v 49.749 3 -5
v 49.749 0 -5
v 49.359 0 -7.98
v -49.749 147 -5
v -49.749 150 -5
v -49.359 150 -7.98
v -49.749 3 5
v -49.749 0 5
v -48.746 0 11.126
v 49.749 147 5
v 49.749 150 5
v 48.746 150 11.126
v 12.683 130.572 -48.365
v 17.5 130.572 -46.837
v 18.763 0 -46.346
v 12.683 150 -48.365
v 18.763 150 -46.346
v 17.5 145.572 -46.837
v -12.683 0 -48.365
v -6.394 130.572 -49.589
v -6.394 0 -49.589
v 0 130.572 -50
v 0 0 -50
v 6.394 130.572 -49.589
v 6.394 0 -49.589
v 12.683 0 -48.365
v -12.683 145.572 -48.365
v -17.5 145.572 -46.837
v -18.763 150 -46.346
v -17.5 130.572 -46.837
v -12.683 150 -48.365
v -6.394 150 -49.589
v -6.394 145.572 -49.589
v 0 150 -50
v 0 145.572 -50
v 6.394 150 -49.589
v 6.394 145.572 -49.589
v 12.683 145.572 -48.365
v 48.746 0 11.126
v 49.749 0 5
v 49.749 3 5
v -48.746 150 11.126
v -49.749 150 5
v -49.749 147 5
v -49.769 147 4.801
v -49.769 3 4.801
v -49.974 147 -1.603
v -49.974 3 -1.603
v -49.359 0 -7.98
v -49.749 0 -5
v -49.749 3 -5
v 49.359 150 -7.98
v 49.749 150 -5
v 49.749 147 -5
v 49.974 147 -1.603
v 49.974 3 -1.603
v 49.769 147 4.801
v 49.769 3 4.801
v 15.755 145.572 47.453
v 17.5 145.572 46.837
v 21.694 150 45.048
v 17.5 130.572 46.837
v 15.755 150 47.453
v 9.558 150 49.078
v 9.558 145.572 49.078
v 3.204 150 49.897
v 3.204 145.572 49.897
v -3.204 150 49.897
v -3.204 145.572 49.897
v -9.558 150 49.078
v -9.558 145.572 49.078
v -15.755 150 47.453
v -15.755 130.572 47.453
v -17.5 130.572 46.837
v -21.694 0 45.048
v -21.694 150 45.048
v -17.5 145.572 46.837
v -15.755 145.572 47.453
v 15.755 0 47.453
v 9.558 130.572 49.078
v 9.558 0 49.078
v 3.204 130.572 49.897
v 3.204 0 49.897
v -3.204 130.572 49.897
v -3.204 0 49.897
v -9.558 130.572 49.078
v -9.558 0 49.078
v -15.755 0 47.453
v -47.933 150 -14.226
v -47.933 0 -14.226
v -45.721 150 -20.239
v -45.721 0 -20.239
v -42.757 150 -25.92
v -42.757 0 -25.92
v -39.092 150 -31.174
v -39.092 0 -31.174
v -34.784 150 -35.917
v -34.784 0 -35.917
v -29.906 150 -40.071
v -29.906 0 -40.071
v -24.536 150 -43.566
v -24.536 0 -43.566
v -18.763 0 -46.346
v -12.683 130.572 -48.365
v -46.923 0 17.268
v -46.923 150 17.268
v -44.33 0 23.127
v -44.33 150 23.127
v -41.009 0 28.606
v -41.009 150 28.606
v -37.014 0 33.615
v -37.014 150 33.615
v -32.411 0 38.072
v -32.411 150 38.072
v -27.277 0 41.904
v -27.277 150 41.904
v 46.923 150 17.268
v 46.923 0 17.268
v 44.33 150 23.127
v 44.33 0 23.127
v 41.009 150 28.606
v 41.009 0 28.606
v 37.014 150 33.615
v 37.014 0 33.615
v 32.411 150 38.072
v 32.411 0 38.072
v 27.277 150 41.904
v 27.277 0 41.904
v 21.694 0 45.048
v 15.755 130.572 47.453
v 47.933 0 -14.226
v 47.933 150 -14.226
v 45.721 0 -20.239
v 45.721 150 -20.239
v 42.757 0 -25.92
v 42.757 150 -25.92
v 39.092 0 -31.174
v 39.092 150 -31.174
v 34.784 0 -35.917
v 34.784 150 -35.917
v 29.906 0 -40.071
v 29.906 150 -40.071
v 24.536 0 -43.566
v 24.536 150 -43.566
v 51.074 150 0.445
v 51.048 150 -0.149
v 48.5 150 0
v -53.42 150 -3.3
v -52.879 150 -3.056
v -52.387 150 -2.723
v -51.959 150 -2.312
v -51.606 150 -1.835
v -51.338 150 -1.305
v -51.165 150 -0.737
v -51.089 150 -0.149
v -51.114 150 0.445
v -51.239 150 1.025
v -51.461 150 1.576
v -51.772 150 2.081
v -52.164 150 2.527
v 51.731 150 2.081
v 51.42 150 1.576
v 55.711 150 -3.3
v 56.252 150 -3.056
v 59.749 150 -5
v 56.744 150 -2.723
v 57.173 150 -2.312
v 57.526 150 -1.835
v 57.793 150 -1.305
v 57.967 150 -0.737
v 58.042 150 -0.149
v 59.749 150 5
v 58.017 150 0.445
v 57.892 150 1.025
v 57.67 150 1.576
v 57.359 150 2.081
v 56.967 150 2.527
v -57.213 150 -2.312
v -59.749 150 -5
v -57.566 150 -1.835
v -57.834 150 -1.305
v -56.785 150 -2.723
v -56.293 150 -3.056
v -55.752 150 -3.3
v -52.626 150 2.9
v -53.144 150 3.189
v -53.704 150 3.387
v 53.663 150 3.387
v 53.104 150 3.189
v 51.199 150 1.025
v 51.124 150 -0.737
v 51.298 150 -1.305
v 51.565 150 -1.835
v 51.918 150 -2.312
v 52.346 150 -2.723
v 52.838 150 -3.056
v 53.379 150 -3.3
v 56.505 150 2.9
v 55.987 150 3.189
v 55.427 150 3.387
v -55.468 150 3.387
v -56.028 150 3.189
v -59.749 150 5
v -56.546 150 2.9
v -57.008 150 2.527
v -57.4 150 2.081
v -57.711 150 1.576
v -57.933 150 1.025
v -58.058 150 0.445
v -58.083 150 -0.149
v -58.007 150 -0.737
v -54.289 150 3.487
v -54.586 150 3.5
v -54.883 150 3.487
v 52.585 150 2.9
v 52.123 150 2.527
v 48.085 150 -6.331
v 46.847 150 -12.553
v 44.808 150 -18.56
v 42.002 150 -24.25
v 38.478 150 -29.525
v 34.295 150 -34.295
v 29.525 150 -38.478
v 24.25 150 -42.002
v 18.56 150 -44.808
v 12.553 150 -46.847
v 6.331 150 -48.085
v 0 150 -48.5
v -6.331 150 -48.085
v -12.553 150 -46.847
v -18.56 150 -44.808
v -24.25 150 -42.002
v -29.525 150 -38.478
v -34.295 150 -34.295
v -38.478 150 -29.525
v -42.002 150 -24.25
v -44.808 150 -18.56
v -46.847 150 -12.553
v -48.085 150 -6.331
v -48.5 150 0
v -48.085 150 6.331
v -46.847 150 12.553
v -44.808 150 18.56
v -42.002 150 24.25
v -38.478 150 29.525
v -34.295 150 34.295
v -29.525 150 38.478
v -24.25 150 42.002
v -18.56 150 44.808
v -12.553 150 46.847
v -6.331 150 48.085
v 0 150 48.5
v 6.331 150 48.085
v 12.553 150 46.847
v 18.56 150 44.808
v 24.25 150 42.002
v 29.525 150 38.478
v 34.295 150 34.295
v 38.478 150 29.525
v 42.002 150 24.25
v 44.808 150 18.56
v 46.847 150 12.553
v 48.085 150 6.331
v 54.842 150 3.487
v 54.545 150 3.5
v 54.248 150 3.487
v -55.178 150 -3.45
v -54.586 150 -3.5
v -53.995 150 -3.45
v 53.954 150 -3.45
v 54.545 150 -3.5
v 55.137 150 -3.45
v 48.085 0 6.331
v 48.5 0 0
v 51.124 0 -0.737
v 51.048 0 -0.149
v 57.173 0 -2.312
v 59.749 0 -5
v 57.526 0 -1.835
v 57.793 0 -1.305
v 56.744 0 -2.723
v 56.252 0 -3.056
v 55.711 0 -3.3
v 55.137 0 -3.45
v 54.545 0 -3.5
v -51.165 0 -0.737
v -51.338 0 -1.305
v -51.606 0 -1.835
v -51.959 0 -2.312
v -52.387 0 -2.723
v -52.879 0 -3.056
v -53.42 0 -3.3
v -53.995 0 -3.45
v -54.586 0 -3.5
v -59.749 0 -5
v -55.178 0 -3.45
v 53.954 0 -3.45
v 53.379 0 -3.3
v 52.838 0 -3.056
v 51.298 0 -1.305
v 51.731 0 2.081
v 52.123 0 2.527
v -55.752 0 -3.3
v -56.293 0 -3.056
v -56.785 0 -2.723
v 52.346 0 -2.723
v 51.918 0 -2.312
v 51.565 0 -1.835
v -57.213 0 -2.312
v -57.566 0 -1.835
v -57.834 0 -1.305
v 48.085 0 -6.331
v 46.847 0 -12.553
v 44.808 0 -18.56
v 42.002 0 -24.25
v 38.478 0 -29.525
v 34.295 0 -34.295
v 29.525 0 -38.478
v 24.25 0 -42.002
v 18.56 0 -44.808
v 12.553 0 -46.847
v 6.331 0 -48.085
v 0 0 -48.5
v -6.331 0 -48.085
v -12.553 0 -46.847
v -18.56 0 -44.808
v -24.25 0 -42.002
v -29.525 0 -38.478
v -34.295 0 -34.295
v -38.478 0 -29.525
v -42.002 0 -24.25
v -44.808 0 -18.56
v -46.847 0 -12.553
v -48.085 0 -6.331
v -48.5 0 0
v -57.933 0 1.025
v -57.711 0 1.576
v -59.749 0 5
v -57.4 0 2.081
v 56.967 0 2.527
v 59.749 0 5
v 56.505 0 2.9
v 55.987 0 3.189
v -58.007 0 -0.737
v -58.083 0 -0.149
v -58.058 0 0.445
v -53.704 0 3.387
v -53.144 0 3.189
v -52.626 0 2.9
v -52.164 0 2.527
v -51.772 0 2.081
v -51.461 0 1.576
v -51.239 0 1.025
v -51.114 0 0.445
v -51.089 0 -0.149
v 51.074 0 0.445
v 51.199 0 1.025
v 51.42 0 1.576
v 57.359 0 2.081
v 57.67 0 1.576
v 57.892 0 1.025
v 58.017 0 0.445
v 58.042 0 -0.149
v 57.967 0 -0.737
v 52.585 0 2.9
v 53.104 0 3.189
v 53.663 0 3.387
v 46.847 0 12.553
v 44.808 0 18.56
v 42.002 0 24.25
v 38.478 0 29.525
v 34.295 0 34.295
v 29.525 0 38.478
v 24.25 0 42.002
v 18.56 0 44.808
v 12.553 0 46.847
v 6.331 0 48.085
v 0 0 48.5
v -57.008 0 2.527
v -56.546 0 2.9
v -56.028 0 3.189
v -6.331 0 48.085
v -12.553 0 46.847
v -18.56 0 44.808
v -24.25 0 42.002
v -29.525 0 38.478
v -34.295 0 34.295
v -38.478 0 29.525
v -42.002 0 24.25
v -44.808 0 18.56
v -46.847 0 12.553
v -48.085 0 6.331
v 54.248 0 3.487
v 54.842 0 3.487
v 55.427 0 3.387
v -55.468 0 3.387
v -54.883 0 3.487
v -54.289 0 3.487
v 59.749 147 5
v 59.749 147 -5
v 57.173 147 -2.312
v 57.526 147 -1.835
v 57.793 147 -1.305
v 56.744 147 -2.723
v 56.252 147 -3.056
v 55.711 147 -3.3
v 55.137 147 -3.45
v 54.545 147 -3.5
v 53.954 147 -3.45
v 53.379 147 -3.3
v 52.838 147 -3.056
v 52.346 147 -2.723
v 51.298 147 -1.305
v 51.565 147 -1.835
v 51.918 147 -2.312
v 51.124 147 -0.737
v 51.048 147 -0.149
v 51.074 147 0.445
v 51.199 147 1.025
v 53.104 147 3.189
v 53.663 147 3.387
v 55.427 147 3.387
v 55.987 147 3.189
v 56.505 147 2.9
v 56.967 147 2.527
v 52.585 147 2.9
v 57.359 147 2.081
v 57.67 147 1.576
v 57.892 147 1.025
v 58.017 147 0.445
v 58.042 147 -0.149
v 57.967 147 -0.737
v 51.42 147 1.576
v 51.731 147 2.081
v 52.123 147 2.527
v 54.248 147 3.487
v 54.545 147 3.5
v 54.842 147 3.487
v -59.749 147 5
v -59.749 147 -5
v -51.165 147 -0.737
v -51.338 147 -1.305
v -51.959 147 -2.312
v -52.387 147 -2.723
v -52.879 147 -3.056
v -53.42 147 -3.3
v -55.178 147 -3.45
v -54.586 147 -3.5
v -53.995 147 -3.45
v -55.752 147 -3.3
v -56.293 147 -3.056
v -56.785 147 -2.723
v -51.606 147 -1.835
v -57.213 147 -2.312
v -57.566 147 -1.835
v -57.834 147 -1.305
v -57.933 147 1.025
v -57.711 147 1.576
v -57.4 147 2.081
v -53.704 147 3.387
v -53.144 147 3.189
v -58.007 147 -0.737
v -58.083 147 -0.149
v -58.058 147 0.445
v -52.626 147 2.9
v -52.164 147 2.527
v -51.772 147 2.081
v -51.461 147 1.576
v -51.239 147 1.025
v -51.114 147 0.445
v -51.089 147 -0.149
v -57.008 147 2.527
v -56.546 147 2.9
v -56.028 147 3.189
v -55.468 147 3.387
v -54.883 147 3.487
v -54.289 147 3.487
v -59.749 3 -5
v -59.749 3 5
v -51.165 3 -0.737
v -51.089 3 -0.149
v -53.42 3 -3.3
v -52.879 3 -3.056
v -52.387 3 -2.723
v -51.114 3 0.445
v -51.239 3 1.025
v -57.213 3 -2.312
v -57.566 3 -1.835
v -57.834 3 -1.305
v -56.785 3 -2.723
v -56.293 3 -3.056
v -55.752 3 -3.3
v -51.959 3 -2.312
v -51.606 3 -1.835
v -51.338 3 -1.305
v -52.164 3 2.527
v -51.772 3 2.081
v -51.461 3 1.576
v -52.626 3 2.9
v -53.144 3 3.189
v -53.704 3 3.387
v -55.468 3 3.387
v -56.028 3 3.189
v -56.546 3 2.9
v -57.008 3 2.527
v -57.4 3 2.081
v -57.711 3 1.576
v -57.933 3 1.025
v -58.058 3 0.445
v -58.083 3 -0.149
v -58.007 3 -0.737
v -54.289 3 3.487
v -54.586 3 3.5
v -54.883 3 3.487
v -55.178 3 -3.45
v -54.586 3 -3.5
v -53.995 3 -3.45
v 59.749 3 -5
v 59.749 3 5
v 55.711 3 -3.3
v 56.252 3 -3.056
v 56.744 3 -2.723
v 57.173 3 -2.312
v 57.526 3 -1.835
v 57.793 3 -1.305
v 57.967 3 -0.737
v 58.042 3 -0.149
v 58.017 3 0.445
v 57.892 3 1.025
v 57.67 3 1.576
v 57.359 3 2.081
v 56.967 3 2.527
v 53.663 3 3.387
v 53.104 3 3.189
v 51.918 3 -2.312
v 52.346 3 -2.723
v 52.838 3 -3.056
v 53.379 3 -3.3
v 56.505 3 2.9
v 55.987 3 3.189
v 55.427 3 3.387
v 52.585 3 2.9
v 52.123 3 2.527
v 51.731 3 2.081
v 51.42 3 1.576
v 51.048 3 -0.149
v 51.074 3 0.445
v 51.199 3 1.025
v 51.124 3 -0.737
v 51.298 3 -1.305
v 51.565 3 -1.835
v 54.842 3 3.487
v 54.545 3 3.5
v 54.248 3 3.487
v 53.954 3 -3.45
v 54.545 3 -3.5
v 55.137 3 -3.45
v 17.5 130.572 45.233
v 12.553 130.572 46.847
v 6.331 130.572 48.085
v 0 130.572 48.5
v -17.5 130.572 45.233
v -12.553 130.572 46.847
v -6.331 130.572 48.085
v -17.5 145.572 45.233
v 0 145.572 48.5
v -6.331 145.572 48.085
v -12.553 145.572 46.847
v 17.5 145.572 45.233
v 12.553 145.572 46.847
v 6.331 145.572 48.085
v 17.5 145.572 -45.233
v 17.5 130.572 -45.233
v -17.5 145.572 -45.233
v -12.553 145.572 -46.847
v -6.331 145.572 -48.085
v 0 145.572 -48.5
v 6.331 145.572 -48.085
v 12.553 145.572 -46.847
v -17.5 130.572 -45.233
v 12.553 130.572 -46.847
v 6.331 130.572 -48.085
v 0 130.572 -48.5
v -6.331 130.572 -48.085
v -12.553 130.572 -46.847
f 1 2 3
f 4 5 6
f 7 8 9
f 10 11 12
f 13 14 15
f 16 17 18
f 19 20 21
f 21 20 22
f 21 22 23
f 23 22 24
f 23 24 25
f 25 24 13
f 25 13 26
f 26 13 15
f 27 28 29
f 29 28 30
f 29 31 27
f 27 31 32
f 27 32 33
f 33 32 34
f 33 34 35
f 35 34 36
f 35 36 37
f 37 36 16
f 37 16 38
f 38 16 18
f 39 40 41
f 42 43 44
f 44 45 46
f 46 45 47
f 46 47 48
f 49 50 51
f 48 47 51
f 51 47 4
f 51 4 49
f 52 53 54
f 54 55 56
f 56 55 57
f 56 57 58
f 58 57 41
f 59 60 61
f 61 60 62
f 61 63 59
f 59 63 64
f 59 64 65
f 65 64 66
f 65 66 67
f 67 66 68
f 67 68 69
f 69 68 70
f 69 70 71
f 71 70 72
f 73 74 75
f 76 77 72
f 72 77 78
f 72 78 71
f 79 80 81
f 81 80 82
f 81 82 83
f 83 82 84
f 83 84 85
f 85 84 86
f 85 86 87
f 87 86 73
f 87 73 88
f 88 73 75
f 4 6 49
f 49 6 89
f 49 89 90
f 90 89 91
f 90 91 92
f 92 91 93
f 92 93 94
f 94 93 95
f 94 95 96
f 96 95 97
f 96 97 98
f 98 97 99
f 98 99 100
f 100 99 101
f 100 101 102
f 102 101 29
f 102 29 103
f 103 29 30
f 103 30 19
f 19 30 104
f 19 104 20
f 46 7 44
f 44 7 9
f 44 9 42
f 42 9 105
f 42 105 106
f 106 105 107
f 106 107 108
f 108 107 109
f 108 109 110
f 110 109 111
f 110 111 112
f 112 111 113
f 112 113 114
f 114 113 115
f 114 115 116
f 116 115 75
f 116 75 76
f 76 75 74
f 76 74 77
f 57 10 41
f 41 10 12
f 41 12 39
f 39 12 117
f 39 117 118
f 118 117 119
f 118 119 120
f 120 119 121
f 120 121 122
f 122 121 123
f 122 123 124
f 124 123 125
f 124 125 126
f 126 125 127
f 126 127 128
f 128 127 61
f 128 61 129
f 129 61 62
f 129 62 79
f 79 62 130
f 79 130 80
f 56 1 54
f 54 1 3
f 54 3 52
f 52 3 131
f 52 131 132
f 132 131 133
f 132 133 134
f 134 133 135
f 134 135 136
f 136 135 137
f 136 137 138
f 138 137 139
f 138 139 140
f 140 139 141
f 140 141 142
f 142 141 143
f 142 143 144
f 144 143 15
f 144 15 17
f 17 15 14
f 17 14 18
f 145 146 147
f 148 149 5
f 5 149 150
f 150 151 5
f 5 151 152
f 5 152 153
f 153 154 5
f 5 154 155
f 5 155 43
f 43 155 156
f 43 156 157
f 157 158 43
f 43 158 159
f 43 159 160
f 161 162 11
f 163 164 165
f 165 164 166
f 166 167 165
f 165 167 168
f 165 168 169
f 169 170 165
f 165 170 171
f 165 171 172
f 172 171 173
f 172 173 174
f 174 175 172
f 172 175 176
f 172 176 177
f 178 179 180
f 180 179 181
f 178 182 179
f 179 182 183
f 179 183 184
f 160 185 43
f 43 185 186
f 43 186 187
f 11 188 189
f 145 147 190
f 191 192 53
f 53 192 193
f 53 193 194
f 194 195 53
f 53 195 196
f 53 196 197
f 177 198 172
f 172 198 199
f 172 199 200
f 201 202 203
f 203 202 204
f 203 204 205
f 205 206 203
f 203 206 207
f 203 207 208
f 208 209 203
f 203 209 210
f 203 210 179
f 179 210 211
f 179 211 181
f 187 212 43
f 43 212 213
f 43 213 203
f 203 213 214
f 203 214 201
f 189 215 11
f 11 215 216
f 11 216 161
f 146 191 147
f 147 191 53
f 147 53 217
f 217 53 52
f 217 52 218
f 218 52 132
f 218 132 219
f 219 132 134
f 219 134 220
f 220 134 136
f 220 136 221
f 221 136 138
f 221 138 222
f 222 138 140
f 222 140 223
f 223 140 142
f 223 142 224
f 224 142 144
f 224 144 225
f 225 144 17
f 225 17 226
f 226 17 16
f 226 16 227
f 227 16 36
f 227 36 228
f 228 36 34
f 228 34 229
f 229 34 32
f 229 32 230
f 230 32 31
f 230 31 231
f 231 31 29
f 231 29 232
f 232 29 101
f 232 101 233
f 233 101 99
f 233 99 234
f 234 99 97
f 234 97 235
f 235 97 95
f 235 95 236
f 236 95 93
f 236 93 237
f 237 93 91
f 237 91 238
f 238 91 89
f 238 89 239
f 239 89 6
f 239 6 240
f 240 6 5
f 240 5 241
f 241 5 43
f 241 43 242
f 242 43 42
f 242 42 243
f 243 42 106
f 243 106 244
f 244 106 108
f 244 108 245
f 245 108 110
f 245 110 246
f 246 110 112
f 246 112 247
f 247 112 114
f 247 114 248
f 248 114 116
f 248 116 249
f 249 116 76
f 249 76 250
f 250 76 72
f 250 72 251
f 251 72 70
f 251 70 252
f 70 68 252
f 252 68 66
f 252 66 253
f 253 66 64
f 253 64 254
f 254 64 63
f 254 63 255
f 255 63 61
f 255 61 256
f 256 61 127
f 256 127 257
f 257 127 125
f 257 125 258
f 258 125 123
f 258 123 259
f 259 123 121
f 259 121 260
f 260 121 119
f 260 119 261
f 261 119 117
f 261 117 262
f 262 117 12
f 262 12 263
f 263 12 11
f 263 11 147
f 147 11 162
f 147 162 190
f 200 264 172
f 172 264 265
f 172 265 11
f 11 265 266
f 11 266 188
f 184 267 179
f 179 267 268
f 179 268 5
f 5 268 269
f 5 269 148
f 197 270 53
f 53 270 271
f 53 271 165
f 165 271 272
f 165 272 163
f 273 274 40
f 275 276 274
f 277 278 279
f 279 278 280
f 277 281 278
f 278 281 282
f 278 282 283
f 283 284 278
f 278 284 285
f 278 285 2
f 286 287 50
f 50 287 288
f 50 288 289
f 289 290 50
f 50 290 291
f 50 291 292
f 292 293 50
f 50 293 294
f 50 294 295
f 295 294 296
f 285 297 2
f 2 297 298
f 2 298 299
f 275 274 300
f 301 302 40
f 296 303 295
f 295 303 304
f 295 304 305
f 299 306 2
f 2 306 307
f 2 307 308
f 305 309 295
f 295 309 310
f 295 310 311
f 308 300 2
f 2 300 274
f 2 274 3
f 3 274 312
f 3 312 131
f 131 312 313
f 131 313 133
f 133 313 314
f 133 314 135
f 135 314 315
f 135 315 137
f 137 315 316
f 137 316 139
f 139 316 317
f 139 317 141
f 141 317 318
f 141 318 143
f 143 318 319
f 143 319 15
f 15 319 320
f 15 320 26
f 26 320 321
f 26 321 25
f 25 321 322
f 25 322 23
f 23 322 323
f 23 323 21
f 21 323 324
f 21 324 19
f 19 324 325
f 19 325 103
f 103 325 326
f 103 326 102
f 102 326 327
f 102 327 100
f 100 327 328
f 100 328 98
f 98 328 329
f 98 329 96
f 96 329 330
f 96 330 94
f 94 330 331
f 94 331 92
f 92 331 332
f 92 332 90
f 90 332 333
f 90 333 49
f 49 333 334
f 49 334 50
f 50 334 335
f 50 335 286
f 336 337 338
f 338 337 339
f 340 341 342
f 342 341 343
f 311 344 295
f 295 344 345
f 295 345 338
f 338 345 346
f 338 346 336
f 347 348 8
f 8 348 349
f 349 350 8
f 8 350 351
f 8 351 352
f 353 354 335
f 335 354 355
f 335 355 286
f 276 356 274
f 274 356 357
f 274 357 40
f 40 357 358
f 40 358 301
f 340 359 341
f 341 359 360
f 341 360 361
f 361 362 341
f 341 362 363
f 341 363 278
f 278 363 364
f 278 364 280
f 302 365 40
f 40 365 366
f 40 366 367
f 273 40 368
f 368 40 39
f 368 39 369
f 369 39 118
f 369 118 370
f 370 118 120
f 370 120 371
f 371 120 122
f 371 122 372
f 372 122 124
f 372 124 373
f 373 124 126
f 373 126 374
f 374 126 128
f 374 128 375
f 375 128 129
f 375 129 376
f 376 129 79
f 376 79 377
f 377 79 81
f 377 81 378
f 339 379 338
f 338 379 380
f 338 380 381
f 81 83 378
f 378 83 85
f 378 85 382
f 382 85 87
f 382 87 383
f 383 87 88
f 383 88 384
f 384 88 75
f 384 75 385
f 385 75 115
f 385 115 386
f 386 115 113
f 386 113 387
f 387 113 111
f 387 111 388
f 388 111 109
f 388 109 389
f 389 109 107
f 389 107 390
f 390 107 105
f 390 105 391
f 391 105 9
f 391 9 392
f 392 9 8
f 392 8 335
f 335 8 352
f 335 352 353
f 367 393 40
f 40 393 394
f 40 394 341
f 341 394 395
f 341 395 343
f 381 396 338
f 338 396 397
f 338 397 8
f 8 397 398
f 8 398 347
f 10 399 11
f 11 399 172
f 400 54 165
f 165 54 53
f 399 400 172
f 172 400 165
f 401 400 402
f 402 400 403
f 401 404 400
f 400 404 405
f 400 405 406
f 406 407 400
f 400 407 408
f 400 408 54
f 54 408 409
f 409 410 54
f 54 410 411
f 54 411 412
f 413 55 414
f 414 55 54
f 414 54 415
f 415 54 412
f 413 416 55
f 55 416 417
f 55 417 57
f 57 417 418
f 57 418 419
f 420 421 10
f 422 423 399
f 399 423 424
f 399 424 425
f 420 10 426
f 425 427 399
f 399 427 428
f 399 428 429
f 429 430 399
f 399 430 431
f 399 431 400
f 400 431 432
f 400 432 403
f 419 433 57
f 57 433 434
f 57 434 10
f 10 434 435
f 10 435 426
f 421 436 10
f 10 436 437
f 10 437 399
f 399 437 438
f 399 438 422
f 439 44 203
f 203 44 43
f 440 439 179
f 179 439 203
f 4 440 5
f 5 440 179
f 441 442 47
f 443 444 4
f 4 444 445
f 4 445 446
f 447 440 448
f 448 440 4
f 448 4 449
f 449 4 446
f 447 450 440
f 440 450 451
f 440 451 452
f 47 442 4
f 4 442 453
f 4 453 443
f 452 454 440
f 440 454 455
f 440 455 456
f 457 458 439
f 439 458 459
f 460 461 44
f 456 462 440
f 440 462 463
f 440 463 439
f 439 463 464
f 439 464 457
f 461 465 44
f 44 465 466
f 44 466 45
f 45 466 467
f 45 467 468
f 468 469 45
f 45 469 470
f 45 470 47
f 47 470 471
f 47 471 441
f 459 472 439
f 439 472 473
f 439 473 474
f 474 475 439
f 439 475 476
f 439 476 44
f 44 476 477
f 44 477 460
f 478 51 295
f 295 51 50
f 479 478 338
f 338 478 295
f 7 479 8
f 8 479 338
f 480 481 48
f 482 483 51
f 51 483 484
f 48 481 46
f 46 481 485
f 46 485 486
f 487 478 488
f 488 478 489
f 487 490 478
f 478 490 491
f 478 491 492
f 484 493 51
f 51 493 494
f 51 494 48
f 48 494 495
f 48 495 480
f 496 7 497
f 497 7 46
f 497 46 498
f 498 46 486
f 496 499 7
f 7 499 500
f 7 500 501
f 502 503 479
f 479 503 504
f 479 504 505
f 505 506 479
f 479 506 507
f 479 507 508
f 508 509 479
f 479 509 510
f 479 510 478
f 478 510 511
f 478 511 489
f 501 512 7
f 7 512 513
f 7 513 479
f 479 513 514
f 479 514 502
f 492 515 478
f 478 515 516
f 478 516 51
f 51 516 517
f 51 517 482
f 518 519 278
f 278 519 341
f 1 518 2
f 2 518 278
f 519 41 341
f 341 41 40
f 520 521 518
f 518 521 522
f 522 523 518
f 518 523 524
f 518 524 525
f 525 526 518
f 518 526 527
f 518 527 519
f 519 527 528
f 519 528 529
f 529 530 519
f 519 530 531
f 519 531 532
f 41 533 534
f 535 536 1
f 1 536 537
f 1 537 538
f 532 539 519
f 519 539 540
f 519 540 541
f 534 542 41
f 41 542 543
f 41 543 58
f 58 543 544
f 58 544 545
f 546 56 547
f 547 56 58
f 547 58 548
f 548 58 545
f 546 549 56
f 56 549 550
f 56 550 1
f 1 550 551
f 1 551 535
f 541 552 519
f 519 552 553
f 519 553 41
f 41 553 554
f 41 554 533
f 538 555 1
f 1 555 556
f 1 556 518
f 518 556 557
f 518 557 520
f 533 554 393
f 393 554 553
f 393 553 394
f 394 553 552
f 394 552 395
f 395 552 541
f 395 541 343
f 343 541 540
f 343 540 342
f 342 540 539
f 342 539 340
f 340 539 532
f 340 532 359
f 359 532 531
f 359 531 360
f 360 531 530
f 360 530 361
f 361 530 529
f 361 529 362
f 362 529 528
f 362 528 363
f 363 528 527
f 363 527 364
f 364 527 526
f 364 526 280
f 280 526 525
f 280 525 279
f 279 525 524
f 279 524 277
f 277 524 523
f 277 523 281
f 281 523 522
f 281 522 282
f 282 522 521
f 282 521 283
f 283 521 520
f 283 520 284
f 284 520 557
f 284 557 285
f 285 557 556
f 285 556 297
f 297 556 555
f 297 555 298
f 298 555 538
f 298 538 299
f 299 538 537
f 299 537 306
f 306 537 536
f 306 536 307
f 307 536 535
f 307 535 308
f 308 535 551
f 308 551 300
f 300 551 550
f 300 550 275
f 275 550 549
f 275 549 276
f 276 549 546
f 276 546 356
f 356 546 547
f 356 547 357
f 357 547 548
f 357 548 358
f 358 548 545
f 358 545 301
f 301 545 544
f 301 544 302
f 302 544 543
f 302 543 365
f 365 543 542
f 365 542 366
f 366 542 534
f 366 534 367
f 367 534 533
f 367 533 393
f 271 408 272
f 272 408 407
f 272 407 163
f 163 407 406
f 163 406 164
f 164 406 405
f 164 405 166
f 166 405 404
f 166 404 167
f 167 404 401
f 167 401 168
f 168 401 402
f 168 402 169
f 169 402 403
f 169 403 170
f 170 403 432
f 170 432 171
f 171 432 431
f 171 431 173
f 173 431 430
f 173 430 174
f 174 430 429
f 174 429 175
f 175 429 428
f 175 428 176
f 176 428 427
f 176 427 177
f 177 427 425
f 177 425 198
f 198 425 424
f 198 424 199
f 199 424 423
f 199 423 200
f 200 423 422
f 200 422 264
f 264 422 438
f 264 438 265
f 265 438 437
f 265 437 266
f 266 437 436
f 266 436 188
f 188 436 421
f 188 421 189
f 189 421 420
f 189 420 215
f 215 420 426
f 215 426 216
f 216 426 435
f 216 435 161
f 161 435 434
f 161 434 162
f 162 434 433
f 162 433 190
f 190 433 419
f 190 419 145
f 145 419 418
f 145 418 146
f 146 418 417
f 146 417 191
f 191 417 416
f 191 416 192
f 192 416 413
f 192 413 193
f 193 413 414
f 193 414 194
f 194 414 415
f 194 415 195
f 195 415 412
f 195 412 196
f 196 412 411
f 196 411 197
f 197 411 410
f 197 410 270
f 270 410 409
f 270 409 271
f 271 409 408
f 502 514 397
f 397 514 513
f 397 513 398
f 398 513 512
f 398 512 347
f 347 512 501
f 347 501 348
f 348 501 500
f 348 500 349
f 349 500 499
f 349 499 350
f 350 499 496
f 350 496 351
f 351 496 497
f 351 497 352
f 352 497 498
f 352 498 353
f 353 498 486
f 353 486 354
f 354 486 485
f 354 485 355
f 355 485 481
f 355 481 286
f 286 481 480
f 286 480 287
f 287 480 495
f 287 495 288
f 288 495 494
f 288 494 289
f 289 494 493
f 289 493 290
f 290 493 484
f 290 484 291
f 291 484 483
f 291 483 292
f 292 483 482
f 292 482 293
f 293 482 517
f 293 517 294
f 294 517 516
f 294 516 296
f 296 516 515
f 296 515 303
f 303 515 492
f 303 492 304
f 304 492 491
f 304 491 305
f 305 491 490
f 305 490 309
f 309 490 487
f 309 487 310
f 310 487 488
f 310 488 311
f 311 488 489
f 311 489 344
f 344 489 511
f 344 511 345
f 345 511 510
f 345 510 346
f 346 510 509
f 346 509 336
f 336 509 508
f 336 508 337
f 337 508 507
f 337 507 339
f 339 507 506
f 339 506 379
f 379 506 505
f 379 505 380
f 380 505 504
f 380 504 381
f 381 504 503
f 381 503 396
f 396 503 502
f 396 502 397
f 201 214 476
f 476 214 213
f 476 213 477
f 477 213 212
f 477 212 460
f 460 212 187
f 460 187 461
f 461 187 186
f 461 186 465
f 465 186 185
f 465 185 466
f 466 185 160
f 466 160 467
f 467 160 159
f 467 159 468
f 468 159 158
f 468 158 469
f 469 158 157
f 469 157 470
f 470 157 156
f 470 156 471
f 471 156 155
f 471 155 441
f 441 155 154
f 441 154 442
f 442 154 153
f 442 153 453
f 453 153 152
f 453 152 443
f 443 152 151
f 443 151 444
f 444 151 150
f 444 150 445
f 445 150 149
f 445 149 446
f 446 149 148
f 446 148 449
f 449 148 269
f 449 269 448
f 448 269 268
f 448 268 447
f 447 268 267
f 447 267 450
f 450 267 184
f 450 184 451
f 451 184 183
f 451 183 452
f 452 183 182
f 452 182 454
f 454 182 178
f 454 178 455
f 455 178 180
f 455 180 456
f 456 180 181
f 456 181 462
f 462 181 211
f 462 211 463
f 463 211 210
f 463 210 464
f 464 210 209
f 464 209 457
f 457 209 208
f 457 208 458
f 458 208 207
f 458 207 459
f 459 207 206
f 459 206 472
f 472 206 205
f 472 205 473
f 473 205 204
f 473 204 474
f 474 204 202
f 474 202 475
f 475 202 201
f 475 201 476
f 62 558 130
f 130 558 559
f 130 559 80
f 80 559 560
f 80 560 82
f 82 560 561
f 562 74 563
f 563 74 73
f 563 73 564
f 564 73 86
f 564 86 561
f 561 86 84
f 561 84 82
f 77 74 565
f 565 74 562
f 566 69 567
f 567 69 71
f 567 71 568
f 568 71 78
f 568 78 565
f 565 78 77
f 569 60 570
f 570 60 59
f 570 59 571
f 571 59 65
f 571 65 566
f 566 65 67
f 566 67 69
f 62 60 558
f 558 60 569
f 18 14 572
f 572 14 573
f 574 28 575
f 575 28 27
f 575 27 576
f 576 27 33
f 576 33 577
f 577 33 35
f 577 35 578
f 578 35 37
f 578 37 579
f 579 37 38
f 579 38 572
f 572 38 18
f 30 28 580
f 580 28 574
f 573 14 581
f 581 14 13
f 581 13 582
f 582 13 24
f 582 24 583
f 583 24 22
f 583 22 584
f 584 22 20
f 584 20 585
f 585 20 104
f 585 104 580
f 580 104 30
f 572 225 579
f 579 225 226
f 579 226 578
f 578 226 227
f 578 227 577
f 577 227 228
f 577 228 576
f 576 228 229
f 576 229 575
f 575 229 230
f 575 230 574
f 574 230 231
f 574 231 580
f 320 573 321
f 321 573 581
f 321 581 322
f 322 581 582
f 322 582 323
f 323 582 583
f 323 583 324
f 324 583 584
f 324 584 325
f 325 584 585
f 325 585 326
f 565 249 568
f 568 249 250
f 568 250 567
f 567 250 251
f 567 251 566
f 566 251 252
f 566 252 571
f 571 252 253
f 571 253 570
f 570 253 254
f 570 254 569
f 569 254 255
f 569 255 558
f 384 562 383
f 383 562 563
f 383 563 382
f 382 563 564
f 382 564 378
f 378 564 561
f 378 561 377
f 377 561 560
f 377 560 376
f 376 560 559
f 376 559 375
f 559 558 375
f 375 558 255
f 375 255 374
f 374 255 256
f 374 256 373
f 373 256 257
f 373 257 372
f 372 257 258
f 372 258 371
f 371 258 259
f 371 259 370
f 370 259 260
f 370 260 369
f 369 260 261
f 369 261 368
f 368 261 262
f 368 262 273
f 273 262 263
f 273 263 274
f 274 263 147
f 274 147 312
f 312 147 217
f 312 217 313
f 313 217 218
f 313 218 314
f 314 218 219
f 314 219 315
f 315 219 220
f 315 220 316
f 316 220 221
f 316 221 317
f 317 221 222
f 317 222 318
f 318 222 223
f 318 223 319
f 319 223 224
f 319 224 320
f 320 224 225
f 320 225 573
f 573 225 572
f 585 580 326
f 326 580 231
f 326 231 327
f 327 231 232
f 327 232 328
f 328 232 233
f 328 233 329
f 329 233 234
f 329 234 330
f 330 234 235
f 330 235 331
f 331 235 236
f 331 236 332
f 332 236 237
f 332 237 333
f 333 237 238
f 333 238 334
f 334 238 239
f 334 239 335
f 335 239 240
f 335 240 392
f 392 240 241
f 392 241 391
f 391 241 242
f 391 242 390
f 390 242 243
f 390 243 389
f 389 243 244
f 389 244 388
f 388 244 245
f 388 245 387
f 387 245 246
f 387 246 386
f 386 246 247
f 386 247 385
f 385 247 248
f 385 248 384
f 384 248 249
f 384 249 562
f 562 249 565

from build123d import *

# Parameters (mm, degrees)
SKETCH2_R               = 50
BOSS_EXTRUDE1_DEPTH     = 150
SKETCH3_R               = 48
CUT_EXTRUDE1_DEPTH      = 150
SKETCH4_W               = 10
SKETCH4_H               = 10
BOSS_EXTRUDE2_DEPTH     = 3
SKETCH5_W               = 10
SKETCH5_H               = 10
BOSS_EXTRUDE3_DEPTH     = 3
SKETCH7_W               = 10
SKETCH7_H               = 10
BOSS_EXTRUDE5_DEPTH     = 3
SKETCH8_W               = 10
SKETCH8_H               = 10
BOSS_EXTRUDE6_DEPTH     = 3
SKETCH9_R               = 3.5
CUT_EXTRUDE2_DEPTH      = 200
SKETCH10_R              = 3.5
CUT_EXTRUDE3_DEPTH      = 200
CUT_EXTRUDE4_DEPTH      = 150
CUT_EXTRUDE4_DEPTH_BACK = 150
SKETCH11_W              = 35
SKETCH11_H              = 15
SKETCH12_R              = 48.5
CUT_EXTRUDE5_DEPTH      = 150


with BuildPart() as part:
    # Sketch2 → Boss-Extrude1 (new body)
    with BuildSketch(Plane(origin=(0, 0, 0), x_dir=(1, 0, 0), z_dir=(0, 1, 0))):
        with Locations(Location((0, 0, 0), (0, 0, 270))):
            Circle(SKETCH2_R)
    extrude(amount=BOSS_EXTRUDE1_DEPTH)

    # Sketch3 → Cut-Extrude1 (cut)
    with BuildSketch(Plane(origin=(0, 150, 0), x_dir=(1, 0, 0), z_dir=(0, 1, 0))):
        with Locations(Location((0, 0, 0), (0, 0, 270))):
            Circle(SKETCH3_R)
    extrude(amount=-CUT_EXTRUDE1_DEPTH, mode=Mode.SUBTRACT)

    # Sketch4 → Boss-Extrude2 (add)
    with BuildSketch(Plane(origin=(0, 150, 0), x_dir=(1, 0, 0), z_dir=(0, 1, 0))):
        with Locations((54.749371855, 0)):
            Rectangle(SKETCH4_W, SKETCH4_H)
    extrude(amount=-BOSS_EXTRUDE2_DEPTH)

    # Sketch5 → Boss-Extrude3 (add)
    with BuildSketch(Plane(origin=(0, 150, 0), x_dir=(1, 0, 0), z_dir=(0, 1, 0))):
        with Locations((-54.749371855, 0)):
            Rectangle(SKETCH5_W, SKETCH5_H)
    extrude(amount=-BOSS_EXTRUDE3_DEPTH)

    # Sketch7 → Boss-Extrude5 (add)
    with BuildSketch(Plane(origin=(0, 0, 0), x_dir=(1, 0, 0), z_dir=(0, 1, 0))):
        with Locations((-54.749371855, 0)):
            Rectangle(SKETCH7_W, SKETCH7_H)
    extrude(amount=BOSS_EXTRUDE5_DEPTH)

    # Sketch8 → Boss-Extrude6 (add)
    with BuildSketch(Plane(origin=(0, 0, 0), x_dir=(-1, 0, 0), z_dir=(0, -1, 0))):
        with Locations((-54.749371855, 0)):
            Rectangle(SKETCH8_W, SKETCH8_H)
    extrude(amount=-BOSS_EXTRUDE6_DEPTH)

    # Sketch9 → Cut-Extrude2 (cut)
    with BuildSketch(Plane.XZ):
        with Locations(Location((54.545191051, 0, 0), (0, 0, 270))):
            Circle(SKETCH9_R)
    extrude(amount=-CUT_EXTRUDE2_DEPTH, mode=Mode.SUBTRACT)

    # Sketch10 → Cut-Extrude3 (cut)
    with BuildSketch(Plane(origin=(0, 0, 0), x_dir=(-1, 0, 0), z_dir=(0, -1, 0))):
        with Locations(Location((54.586012061, 0, 0), (0, 0, 90))):
            Circle(SKETCH10_R)
    extrude(amount=-CUT_EXTRUDE3_DEPTH, mode=Mode.SUBTRACT)

    # Sketch11 → Cut-Extrude4 (cut, two sides: drawn at the far end of the back side and taken through both)
    with BuildSketch(Plane.XY.offset(-CUT_EXTRUDE4_DEPTH_BACK)):
        with Locations((0, 138.072258372)):
            Rectangle(SKETCH11_W, SKETCH11_H)
    extrude(amount=CUT_EXTRUDE4_DEPTH + CUT_EXTRUDE4_DEPTH_BACK, mode=Mode.SUBTRACT)

    # Sketch12 → Cut-Extrude5 (cut)
    with BuildSketch(Plane(origin=(0, 150, 0), x_dir=(1, 0, 0), z_dir=(0, 1, 0))):
        with Locations(Location((0, 0, 0), (0, 0, 270))):
            Circle(SKETCH12_R)
    extrude(amount=-CUT_EXTRUDE5_DEPTH, mode=Mode.SUBTRACT)


solid = part.part
